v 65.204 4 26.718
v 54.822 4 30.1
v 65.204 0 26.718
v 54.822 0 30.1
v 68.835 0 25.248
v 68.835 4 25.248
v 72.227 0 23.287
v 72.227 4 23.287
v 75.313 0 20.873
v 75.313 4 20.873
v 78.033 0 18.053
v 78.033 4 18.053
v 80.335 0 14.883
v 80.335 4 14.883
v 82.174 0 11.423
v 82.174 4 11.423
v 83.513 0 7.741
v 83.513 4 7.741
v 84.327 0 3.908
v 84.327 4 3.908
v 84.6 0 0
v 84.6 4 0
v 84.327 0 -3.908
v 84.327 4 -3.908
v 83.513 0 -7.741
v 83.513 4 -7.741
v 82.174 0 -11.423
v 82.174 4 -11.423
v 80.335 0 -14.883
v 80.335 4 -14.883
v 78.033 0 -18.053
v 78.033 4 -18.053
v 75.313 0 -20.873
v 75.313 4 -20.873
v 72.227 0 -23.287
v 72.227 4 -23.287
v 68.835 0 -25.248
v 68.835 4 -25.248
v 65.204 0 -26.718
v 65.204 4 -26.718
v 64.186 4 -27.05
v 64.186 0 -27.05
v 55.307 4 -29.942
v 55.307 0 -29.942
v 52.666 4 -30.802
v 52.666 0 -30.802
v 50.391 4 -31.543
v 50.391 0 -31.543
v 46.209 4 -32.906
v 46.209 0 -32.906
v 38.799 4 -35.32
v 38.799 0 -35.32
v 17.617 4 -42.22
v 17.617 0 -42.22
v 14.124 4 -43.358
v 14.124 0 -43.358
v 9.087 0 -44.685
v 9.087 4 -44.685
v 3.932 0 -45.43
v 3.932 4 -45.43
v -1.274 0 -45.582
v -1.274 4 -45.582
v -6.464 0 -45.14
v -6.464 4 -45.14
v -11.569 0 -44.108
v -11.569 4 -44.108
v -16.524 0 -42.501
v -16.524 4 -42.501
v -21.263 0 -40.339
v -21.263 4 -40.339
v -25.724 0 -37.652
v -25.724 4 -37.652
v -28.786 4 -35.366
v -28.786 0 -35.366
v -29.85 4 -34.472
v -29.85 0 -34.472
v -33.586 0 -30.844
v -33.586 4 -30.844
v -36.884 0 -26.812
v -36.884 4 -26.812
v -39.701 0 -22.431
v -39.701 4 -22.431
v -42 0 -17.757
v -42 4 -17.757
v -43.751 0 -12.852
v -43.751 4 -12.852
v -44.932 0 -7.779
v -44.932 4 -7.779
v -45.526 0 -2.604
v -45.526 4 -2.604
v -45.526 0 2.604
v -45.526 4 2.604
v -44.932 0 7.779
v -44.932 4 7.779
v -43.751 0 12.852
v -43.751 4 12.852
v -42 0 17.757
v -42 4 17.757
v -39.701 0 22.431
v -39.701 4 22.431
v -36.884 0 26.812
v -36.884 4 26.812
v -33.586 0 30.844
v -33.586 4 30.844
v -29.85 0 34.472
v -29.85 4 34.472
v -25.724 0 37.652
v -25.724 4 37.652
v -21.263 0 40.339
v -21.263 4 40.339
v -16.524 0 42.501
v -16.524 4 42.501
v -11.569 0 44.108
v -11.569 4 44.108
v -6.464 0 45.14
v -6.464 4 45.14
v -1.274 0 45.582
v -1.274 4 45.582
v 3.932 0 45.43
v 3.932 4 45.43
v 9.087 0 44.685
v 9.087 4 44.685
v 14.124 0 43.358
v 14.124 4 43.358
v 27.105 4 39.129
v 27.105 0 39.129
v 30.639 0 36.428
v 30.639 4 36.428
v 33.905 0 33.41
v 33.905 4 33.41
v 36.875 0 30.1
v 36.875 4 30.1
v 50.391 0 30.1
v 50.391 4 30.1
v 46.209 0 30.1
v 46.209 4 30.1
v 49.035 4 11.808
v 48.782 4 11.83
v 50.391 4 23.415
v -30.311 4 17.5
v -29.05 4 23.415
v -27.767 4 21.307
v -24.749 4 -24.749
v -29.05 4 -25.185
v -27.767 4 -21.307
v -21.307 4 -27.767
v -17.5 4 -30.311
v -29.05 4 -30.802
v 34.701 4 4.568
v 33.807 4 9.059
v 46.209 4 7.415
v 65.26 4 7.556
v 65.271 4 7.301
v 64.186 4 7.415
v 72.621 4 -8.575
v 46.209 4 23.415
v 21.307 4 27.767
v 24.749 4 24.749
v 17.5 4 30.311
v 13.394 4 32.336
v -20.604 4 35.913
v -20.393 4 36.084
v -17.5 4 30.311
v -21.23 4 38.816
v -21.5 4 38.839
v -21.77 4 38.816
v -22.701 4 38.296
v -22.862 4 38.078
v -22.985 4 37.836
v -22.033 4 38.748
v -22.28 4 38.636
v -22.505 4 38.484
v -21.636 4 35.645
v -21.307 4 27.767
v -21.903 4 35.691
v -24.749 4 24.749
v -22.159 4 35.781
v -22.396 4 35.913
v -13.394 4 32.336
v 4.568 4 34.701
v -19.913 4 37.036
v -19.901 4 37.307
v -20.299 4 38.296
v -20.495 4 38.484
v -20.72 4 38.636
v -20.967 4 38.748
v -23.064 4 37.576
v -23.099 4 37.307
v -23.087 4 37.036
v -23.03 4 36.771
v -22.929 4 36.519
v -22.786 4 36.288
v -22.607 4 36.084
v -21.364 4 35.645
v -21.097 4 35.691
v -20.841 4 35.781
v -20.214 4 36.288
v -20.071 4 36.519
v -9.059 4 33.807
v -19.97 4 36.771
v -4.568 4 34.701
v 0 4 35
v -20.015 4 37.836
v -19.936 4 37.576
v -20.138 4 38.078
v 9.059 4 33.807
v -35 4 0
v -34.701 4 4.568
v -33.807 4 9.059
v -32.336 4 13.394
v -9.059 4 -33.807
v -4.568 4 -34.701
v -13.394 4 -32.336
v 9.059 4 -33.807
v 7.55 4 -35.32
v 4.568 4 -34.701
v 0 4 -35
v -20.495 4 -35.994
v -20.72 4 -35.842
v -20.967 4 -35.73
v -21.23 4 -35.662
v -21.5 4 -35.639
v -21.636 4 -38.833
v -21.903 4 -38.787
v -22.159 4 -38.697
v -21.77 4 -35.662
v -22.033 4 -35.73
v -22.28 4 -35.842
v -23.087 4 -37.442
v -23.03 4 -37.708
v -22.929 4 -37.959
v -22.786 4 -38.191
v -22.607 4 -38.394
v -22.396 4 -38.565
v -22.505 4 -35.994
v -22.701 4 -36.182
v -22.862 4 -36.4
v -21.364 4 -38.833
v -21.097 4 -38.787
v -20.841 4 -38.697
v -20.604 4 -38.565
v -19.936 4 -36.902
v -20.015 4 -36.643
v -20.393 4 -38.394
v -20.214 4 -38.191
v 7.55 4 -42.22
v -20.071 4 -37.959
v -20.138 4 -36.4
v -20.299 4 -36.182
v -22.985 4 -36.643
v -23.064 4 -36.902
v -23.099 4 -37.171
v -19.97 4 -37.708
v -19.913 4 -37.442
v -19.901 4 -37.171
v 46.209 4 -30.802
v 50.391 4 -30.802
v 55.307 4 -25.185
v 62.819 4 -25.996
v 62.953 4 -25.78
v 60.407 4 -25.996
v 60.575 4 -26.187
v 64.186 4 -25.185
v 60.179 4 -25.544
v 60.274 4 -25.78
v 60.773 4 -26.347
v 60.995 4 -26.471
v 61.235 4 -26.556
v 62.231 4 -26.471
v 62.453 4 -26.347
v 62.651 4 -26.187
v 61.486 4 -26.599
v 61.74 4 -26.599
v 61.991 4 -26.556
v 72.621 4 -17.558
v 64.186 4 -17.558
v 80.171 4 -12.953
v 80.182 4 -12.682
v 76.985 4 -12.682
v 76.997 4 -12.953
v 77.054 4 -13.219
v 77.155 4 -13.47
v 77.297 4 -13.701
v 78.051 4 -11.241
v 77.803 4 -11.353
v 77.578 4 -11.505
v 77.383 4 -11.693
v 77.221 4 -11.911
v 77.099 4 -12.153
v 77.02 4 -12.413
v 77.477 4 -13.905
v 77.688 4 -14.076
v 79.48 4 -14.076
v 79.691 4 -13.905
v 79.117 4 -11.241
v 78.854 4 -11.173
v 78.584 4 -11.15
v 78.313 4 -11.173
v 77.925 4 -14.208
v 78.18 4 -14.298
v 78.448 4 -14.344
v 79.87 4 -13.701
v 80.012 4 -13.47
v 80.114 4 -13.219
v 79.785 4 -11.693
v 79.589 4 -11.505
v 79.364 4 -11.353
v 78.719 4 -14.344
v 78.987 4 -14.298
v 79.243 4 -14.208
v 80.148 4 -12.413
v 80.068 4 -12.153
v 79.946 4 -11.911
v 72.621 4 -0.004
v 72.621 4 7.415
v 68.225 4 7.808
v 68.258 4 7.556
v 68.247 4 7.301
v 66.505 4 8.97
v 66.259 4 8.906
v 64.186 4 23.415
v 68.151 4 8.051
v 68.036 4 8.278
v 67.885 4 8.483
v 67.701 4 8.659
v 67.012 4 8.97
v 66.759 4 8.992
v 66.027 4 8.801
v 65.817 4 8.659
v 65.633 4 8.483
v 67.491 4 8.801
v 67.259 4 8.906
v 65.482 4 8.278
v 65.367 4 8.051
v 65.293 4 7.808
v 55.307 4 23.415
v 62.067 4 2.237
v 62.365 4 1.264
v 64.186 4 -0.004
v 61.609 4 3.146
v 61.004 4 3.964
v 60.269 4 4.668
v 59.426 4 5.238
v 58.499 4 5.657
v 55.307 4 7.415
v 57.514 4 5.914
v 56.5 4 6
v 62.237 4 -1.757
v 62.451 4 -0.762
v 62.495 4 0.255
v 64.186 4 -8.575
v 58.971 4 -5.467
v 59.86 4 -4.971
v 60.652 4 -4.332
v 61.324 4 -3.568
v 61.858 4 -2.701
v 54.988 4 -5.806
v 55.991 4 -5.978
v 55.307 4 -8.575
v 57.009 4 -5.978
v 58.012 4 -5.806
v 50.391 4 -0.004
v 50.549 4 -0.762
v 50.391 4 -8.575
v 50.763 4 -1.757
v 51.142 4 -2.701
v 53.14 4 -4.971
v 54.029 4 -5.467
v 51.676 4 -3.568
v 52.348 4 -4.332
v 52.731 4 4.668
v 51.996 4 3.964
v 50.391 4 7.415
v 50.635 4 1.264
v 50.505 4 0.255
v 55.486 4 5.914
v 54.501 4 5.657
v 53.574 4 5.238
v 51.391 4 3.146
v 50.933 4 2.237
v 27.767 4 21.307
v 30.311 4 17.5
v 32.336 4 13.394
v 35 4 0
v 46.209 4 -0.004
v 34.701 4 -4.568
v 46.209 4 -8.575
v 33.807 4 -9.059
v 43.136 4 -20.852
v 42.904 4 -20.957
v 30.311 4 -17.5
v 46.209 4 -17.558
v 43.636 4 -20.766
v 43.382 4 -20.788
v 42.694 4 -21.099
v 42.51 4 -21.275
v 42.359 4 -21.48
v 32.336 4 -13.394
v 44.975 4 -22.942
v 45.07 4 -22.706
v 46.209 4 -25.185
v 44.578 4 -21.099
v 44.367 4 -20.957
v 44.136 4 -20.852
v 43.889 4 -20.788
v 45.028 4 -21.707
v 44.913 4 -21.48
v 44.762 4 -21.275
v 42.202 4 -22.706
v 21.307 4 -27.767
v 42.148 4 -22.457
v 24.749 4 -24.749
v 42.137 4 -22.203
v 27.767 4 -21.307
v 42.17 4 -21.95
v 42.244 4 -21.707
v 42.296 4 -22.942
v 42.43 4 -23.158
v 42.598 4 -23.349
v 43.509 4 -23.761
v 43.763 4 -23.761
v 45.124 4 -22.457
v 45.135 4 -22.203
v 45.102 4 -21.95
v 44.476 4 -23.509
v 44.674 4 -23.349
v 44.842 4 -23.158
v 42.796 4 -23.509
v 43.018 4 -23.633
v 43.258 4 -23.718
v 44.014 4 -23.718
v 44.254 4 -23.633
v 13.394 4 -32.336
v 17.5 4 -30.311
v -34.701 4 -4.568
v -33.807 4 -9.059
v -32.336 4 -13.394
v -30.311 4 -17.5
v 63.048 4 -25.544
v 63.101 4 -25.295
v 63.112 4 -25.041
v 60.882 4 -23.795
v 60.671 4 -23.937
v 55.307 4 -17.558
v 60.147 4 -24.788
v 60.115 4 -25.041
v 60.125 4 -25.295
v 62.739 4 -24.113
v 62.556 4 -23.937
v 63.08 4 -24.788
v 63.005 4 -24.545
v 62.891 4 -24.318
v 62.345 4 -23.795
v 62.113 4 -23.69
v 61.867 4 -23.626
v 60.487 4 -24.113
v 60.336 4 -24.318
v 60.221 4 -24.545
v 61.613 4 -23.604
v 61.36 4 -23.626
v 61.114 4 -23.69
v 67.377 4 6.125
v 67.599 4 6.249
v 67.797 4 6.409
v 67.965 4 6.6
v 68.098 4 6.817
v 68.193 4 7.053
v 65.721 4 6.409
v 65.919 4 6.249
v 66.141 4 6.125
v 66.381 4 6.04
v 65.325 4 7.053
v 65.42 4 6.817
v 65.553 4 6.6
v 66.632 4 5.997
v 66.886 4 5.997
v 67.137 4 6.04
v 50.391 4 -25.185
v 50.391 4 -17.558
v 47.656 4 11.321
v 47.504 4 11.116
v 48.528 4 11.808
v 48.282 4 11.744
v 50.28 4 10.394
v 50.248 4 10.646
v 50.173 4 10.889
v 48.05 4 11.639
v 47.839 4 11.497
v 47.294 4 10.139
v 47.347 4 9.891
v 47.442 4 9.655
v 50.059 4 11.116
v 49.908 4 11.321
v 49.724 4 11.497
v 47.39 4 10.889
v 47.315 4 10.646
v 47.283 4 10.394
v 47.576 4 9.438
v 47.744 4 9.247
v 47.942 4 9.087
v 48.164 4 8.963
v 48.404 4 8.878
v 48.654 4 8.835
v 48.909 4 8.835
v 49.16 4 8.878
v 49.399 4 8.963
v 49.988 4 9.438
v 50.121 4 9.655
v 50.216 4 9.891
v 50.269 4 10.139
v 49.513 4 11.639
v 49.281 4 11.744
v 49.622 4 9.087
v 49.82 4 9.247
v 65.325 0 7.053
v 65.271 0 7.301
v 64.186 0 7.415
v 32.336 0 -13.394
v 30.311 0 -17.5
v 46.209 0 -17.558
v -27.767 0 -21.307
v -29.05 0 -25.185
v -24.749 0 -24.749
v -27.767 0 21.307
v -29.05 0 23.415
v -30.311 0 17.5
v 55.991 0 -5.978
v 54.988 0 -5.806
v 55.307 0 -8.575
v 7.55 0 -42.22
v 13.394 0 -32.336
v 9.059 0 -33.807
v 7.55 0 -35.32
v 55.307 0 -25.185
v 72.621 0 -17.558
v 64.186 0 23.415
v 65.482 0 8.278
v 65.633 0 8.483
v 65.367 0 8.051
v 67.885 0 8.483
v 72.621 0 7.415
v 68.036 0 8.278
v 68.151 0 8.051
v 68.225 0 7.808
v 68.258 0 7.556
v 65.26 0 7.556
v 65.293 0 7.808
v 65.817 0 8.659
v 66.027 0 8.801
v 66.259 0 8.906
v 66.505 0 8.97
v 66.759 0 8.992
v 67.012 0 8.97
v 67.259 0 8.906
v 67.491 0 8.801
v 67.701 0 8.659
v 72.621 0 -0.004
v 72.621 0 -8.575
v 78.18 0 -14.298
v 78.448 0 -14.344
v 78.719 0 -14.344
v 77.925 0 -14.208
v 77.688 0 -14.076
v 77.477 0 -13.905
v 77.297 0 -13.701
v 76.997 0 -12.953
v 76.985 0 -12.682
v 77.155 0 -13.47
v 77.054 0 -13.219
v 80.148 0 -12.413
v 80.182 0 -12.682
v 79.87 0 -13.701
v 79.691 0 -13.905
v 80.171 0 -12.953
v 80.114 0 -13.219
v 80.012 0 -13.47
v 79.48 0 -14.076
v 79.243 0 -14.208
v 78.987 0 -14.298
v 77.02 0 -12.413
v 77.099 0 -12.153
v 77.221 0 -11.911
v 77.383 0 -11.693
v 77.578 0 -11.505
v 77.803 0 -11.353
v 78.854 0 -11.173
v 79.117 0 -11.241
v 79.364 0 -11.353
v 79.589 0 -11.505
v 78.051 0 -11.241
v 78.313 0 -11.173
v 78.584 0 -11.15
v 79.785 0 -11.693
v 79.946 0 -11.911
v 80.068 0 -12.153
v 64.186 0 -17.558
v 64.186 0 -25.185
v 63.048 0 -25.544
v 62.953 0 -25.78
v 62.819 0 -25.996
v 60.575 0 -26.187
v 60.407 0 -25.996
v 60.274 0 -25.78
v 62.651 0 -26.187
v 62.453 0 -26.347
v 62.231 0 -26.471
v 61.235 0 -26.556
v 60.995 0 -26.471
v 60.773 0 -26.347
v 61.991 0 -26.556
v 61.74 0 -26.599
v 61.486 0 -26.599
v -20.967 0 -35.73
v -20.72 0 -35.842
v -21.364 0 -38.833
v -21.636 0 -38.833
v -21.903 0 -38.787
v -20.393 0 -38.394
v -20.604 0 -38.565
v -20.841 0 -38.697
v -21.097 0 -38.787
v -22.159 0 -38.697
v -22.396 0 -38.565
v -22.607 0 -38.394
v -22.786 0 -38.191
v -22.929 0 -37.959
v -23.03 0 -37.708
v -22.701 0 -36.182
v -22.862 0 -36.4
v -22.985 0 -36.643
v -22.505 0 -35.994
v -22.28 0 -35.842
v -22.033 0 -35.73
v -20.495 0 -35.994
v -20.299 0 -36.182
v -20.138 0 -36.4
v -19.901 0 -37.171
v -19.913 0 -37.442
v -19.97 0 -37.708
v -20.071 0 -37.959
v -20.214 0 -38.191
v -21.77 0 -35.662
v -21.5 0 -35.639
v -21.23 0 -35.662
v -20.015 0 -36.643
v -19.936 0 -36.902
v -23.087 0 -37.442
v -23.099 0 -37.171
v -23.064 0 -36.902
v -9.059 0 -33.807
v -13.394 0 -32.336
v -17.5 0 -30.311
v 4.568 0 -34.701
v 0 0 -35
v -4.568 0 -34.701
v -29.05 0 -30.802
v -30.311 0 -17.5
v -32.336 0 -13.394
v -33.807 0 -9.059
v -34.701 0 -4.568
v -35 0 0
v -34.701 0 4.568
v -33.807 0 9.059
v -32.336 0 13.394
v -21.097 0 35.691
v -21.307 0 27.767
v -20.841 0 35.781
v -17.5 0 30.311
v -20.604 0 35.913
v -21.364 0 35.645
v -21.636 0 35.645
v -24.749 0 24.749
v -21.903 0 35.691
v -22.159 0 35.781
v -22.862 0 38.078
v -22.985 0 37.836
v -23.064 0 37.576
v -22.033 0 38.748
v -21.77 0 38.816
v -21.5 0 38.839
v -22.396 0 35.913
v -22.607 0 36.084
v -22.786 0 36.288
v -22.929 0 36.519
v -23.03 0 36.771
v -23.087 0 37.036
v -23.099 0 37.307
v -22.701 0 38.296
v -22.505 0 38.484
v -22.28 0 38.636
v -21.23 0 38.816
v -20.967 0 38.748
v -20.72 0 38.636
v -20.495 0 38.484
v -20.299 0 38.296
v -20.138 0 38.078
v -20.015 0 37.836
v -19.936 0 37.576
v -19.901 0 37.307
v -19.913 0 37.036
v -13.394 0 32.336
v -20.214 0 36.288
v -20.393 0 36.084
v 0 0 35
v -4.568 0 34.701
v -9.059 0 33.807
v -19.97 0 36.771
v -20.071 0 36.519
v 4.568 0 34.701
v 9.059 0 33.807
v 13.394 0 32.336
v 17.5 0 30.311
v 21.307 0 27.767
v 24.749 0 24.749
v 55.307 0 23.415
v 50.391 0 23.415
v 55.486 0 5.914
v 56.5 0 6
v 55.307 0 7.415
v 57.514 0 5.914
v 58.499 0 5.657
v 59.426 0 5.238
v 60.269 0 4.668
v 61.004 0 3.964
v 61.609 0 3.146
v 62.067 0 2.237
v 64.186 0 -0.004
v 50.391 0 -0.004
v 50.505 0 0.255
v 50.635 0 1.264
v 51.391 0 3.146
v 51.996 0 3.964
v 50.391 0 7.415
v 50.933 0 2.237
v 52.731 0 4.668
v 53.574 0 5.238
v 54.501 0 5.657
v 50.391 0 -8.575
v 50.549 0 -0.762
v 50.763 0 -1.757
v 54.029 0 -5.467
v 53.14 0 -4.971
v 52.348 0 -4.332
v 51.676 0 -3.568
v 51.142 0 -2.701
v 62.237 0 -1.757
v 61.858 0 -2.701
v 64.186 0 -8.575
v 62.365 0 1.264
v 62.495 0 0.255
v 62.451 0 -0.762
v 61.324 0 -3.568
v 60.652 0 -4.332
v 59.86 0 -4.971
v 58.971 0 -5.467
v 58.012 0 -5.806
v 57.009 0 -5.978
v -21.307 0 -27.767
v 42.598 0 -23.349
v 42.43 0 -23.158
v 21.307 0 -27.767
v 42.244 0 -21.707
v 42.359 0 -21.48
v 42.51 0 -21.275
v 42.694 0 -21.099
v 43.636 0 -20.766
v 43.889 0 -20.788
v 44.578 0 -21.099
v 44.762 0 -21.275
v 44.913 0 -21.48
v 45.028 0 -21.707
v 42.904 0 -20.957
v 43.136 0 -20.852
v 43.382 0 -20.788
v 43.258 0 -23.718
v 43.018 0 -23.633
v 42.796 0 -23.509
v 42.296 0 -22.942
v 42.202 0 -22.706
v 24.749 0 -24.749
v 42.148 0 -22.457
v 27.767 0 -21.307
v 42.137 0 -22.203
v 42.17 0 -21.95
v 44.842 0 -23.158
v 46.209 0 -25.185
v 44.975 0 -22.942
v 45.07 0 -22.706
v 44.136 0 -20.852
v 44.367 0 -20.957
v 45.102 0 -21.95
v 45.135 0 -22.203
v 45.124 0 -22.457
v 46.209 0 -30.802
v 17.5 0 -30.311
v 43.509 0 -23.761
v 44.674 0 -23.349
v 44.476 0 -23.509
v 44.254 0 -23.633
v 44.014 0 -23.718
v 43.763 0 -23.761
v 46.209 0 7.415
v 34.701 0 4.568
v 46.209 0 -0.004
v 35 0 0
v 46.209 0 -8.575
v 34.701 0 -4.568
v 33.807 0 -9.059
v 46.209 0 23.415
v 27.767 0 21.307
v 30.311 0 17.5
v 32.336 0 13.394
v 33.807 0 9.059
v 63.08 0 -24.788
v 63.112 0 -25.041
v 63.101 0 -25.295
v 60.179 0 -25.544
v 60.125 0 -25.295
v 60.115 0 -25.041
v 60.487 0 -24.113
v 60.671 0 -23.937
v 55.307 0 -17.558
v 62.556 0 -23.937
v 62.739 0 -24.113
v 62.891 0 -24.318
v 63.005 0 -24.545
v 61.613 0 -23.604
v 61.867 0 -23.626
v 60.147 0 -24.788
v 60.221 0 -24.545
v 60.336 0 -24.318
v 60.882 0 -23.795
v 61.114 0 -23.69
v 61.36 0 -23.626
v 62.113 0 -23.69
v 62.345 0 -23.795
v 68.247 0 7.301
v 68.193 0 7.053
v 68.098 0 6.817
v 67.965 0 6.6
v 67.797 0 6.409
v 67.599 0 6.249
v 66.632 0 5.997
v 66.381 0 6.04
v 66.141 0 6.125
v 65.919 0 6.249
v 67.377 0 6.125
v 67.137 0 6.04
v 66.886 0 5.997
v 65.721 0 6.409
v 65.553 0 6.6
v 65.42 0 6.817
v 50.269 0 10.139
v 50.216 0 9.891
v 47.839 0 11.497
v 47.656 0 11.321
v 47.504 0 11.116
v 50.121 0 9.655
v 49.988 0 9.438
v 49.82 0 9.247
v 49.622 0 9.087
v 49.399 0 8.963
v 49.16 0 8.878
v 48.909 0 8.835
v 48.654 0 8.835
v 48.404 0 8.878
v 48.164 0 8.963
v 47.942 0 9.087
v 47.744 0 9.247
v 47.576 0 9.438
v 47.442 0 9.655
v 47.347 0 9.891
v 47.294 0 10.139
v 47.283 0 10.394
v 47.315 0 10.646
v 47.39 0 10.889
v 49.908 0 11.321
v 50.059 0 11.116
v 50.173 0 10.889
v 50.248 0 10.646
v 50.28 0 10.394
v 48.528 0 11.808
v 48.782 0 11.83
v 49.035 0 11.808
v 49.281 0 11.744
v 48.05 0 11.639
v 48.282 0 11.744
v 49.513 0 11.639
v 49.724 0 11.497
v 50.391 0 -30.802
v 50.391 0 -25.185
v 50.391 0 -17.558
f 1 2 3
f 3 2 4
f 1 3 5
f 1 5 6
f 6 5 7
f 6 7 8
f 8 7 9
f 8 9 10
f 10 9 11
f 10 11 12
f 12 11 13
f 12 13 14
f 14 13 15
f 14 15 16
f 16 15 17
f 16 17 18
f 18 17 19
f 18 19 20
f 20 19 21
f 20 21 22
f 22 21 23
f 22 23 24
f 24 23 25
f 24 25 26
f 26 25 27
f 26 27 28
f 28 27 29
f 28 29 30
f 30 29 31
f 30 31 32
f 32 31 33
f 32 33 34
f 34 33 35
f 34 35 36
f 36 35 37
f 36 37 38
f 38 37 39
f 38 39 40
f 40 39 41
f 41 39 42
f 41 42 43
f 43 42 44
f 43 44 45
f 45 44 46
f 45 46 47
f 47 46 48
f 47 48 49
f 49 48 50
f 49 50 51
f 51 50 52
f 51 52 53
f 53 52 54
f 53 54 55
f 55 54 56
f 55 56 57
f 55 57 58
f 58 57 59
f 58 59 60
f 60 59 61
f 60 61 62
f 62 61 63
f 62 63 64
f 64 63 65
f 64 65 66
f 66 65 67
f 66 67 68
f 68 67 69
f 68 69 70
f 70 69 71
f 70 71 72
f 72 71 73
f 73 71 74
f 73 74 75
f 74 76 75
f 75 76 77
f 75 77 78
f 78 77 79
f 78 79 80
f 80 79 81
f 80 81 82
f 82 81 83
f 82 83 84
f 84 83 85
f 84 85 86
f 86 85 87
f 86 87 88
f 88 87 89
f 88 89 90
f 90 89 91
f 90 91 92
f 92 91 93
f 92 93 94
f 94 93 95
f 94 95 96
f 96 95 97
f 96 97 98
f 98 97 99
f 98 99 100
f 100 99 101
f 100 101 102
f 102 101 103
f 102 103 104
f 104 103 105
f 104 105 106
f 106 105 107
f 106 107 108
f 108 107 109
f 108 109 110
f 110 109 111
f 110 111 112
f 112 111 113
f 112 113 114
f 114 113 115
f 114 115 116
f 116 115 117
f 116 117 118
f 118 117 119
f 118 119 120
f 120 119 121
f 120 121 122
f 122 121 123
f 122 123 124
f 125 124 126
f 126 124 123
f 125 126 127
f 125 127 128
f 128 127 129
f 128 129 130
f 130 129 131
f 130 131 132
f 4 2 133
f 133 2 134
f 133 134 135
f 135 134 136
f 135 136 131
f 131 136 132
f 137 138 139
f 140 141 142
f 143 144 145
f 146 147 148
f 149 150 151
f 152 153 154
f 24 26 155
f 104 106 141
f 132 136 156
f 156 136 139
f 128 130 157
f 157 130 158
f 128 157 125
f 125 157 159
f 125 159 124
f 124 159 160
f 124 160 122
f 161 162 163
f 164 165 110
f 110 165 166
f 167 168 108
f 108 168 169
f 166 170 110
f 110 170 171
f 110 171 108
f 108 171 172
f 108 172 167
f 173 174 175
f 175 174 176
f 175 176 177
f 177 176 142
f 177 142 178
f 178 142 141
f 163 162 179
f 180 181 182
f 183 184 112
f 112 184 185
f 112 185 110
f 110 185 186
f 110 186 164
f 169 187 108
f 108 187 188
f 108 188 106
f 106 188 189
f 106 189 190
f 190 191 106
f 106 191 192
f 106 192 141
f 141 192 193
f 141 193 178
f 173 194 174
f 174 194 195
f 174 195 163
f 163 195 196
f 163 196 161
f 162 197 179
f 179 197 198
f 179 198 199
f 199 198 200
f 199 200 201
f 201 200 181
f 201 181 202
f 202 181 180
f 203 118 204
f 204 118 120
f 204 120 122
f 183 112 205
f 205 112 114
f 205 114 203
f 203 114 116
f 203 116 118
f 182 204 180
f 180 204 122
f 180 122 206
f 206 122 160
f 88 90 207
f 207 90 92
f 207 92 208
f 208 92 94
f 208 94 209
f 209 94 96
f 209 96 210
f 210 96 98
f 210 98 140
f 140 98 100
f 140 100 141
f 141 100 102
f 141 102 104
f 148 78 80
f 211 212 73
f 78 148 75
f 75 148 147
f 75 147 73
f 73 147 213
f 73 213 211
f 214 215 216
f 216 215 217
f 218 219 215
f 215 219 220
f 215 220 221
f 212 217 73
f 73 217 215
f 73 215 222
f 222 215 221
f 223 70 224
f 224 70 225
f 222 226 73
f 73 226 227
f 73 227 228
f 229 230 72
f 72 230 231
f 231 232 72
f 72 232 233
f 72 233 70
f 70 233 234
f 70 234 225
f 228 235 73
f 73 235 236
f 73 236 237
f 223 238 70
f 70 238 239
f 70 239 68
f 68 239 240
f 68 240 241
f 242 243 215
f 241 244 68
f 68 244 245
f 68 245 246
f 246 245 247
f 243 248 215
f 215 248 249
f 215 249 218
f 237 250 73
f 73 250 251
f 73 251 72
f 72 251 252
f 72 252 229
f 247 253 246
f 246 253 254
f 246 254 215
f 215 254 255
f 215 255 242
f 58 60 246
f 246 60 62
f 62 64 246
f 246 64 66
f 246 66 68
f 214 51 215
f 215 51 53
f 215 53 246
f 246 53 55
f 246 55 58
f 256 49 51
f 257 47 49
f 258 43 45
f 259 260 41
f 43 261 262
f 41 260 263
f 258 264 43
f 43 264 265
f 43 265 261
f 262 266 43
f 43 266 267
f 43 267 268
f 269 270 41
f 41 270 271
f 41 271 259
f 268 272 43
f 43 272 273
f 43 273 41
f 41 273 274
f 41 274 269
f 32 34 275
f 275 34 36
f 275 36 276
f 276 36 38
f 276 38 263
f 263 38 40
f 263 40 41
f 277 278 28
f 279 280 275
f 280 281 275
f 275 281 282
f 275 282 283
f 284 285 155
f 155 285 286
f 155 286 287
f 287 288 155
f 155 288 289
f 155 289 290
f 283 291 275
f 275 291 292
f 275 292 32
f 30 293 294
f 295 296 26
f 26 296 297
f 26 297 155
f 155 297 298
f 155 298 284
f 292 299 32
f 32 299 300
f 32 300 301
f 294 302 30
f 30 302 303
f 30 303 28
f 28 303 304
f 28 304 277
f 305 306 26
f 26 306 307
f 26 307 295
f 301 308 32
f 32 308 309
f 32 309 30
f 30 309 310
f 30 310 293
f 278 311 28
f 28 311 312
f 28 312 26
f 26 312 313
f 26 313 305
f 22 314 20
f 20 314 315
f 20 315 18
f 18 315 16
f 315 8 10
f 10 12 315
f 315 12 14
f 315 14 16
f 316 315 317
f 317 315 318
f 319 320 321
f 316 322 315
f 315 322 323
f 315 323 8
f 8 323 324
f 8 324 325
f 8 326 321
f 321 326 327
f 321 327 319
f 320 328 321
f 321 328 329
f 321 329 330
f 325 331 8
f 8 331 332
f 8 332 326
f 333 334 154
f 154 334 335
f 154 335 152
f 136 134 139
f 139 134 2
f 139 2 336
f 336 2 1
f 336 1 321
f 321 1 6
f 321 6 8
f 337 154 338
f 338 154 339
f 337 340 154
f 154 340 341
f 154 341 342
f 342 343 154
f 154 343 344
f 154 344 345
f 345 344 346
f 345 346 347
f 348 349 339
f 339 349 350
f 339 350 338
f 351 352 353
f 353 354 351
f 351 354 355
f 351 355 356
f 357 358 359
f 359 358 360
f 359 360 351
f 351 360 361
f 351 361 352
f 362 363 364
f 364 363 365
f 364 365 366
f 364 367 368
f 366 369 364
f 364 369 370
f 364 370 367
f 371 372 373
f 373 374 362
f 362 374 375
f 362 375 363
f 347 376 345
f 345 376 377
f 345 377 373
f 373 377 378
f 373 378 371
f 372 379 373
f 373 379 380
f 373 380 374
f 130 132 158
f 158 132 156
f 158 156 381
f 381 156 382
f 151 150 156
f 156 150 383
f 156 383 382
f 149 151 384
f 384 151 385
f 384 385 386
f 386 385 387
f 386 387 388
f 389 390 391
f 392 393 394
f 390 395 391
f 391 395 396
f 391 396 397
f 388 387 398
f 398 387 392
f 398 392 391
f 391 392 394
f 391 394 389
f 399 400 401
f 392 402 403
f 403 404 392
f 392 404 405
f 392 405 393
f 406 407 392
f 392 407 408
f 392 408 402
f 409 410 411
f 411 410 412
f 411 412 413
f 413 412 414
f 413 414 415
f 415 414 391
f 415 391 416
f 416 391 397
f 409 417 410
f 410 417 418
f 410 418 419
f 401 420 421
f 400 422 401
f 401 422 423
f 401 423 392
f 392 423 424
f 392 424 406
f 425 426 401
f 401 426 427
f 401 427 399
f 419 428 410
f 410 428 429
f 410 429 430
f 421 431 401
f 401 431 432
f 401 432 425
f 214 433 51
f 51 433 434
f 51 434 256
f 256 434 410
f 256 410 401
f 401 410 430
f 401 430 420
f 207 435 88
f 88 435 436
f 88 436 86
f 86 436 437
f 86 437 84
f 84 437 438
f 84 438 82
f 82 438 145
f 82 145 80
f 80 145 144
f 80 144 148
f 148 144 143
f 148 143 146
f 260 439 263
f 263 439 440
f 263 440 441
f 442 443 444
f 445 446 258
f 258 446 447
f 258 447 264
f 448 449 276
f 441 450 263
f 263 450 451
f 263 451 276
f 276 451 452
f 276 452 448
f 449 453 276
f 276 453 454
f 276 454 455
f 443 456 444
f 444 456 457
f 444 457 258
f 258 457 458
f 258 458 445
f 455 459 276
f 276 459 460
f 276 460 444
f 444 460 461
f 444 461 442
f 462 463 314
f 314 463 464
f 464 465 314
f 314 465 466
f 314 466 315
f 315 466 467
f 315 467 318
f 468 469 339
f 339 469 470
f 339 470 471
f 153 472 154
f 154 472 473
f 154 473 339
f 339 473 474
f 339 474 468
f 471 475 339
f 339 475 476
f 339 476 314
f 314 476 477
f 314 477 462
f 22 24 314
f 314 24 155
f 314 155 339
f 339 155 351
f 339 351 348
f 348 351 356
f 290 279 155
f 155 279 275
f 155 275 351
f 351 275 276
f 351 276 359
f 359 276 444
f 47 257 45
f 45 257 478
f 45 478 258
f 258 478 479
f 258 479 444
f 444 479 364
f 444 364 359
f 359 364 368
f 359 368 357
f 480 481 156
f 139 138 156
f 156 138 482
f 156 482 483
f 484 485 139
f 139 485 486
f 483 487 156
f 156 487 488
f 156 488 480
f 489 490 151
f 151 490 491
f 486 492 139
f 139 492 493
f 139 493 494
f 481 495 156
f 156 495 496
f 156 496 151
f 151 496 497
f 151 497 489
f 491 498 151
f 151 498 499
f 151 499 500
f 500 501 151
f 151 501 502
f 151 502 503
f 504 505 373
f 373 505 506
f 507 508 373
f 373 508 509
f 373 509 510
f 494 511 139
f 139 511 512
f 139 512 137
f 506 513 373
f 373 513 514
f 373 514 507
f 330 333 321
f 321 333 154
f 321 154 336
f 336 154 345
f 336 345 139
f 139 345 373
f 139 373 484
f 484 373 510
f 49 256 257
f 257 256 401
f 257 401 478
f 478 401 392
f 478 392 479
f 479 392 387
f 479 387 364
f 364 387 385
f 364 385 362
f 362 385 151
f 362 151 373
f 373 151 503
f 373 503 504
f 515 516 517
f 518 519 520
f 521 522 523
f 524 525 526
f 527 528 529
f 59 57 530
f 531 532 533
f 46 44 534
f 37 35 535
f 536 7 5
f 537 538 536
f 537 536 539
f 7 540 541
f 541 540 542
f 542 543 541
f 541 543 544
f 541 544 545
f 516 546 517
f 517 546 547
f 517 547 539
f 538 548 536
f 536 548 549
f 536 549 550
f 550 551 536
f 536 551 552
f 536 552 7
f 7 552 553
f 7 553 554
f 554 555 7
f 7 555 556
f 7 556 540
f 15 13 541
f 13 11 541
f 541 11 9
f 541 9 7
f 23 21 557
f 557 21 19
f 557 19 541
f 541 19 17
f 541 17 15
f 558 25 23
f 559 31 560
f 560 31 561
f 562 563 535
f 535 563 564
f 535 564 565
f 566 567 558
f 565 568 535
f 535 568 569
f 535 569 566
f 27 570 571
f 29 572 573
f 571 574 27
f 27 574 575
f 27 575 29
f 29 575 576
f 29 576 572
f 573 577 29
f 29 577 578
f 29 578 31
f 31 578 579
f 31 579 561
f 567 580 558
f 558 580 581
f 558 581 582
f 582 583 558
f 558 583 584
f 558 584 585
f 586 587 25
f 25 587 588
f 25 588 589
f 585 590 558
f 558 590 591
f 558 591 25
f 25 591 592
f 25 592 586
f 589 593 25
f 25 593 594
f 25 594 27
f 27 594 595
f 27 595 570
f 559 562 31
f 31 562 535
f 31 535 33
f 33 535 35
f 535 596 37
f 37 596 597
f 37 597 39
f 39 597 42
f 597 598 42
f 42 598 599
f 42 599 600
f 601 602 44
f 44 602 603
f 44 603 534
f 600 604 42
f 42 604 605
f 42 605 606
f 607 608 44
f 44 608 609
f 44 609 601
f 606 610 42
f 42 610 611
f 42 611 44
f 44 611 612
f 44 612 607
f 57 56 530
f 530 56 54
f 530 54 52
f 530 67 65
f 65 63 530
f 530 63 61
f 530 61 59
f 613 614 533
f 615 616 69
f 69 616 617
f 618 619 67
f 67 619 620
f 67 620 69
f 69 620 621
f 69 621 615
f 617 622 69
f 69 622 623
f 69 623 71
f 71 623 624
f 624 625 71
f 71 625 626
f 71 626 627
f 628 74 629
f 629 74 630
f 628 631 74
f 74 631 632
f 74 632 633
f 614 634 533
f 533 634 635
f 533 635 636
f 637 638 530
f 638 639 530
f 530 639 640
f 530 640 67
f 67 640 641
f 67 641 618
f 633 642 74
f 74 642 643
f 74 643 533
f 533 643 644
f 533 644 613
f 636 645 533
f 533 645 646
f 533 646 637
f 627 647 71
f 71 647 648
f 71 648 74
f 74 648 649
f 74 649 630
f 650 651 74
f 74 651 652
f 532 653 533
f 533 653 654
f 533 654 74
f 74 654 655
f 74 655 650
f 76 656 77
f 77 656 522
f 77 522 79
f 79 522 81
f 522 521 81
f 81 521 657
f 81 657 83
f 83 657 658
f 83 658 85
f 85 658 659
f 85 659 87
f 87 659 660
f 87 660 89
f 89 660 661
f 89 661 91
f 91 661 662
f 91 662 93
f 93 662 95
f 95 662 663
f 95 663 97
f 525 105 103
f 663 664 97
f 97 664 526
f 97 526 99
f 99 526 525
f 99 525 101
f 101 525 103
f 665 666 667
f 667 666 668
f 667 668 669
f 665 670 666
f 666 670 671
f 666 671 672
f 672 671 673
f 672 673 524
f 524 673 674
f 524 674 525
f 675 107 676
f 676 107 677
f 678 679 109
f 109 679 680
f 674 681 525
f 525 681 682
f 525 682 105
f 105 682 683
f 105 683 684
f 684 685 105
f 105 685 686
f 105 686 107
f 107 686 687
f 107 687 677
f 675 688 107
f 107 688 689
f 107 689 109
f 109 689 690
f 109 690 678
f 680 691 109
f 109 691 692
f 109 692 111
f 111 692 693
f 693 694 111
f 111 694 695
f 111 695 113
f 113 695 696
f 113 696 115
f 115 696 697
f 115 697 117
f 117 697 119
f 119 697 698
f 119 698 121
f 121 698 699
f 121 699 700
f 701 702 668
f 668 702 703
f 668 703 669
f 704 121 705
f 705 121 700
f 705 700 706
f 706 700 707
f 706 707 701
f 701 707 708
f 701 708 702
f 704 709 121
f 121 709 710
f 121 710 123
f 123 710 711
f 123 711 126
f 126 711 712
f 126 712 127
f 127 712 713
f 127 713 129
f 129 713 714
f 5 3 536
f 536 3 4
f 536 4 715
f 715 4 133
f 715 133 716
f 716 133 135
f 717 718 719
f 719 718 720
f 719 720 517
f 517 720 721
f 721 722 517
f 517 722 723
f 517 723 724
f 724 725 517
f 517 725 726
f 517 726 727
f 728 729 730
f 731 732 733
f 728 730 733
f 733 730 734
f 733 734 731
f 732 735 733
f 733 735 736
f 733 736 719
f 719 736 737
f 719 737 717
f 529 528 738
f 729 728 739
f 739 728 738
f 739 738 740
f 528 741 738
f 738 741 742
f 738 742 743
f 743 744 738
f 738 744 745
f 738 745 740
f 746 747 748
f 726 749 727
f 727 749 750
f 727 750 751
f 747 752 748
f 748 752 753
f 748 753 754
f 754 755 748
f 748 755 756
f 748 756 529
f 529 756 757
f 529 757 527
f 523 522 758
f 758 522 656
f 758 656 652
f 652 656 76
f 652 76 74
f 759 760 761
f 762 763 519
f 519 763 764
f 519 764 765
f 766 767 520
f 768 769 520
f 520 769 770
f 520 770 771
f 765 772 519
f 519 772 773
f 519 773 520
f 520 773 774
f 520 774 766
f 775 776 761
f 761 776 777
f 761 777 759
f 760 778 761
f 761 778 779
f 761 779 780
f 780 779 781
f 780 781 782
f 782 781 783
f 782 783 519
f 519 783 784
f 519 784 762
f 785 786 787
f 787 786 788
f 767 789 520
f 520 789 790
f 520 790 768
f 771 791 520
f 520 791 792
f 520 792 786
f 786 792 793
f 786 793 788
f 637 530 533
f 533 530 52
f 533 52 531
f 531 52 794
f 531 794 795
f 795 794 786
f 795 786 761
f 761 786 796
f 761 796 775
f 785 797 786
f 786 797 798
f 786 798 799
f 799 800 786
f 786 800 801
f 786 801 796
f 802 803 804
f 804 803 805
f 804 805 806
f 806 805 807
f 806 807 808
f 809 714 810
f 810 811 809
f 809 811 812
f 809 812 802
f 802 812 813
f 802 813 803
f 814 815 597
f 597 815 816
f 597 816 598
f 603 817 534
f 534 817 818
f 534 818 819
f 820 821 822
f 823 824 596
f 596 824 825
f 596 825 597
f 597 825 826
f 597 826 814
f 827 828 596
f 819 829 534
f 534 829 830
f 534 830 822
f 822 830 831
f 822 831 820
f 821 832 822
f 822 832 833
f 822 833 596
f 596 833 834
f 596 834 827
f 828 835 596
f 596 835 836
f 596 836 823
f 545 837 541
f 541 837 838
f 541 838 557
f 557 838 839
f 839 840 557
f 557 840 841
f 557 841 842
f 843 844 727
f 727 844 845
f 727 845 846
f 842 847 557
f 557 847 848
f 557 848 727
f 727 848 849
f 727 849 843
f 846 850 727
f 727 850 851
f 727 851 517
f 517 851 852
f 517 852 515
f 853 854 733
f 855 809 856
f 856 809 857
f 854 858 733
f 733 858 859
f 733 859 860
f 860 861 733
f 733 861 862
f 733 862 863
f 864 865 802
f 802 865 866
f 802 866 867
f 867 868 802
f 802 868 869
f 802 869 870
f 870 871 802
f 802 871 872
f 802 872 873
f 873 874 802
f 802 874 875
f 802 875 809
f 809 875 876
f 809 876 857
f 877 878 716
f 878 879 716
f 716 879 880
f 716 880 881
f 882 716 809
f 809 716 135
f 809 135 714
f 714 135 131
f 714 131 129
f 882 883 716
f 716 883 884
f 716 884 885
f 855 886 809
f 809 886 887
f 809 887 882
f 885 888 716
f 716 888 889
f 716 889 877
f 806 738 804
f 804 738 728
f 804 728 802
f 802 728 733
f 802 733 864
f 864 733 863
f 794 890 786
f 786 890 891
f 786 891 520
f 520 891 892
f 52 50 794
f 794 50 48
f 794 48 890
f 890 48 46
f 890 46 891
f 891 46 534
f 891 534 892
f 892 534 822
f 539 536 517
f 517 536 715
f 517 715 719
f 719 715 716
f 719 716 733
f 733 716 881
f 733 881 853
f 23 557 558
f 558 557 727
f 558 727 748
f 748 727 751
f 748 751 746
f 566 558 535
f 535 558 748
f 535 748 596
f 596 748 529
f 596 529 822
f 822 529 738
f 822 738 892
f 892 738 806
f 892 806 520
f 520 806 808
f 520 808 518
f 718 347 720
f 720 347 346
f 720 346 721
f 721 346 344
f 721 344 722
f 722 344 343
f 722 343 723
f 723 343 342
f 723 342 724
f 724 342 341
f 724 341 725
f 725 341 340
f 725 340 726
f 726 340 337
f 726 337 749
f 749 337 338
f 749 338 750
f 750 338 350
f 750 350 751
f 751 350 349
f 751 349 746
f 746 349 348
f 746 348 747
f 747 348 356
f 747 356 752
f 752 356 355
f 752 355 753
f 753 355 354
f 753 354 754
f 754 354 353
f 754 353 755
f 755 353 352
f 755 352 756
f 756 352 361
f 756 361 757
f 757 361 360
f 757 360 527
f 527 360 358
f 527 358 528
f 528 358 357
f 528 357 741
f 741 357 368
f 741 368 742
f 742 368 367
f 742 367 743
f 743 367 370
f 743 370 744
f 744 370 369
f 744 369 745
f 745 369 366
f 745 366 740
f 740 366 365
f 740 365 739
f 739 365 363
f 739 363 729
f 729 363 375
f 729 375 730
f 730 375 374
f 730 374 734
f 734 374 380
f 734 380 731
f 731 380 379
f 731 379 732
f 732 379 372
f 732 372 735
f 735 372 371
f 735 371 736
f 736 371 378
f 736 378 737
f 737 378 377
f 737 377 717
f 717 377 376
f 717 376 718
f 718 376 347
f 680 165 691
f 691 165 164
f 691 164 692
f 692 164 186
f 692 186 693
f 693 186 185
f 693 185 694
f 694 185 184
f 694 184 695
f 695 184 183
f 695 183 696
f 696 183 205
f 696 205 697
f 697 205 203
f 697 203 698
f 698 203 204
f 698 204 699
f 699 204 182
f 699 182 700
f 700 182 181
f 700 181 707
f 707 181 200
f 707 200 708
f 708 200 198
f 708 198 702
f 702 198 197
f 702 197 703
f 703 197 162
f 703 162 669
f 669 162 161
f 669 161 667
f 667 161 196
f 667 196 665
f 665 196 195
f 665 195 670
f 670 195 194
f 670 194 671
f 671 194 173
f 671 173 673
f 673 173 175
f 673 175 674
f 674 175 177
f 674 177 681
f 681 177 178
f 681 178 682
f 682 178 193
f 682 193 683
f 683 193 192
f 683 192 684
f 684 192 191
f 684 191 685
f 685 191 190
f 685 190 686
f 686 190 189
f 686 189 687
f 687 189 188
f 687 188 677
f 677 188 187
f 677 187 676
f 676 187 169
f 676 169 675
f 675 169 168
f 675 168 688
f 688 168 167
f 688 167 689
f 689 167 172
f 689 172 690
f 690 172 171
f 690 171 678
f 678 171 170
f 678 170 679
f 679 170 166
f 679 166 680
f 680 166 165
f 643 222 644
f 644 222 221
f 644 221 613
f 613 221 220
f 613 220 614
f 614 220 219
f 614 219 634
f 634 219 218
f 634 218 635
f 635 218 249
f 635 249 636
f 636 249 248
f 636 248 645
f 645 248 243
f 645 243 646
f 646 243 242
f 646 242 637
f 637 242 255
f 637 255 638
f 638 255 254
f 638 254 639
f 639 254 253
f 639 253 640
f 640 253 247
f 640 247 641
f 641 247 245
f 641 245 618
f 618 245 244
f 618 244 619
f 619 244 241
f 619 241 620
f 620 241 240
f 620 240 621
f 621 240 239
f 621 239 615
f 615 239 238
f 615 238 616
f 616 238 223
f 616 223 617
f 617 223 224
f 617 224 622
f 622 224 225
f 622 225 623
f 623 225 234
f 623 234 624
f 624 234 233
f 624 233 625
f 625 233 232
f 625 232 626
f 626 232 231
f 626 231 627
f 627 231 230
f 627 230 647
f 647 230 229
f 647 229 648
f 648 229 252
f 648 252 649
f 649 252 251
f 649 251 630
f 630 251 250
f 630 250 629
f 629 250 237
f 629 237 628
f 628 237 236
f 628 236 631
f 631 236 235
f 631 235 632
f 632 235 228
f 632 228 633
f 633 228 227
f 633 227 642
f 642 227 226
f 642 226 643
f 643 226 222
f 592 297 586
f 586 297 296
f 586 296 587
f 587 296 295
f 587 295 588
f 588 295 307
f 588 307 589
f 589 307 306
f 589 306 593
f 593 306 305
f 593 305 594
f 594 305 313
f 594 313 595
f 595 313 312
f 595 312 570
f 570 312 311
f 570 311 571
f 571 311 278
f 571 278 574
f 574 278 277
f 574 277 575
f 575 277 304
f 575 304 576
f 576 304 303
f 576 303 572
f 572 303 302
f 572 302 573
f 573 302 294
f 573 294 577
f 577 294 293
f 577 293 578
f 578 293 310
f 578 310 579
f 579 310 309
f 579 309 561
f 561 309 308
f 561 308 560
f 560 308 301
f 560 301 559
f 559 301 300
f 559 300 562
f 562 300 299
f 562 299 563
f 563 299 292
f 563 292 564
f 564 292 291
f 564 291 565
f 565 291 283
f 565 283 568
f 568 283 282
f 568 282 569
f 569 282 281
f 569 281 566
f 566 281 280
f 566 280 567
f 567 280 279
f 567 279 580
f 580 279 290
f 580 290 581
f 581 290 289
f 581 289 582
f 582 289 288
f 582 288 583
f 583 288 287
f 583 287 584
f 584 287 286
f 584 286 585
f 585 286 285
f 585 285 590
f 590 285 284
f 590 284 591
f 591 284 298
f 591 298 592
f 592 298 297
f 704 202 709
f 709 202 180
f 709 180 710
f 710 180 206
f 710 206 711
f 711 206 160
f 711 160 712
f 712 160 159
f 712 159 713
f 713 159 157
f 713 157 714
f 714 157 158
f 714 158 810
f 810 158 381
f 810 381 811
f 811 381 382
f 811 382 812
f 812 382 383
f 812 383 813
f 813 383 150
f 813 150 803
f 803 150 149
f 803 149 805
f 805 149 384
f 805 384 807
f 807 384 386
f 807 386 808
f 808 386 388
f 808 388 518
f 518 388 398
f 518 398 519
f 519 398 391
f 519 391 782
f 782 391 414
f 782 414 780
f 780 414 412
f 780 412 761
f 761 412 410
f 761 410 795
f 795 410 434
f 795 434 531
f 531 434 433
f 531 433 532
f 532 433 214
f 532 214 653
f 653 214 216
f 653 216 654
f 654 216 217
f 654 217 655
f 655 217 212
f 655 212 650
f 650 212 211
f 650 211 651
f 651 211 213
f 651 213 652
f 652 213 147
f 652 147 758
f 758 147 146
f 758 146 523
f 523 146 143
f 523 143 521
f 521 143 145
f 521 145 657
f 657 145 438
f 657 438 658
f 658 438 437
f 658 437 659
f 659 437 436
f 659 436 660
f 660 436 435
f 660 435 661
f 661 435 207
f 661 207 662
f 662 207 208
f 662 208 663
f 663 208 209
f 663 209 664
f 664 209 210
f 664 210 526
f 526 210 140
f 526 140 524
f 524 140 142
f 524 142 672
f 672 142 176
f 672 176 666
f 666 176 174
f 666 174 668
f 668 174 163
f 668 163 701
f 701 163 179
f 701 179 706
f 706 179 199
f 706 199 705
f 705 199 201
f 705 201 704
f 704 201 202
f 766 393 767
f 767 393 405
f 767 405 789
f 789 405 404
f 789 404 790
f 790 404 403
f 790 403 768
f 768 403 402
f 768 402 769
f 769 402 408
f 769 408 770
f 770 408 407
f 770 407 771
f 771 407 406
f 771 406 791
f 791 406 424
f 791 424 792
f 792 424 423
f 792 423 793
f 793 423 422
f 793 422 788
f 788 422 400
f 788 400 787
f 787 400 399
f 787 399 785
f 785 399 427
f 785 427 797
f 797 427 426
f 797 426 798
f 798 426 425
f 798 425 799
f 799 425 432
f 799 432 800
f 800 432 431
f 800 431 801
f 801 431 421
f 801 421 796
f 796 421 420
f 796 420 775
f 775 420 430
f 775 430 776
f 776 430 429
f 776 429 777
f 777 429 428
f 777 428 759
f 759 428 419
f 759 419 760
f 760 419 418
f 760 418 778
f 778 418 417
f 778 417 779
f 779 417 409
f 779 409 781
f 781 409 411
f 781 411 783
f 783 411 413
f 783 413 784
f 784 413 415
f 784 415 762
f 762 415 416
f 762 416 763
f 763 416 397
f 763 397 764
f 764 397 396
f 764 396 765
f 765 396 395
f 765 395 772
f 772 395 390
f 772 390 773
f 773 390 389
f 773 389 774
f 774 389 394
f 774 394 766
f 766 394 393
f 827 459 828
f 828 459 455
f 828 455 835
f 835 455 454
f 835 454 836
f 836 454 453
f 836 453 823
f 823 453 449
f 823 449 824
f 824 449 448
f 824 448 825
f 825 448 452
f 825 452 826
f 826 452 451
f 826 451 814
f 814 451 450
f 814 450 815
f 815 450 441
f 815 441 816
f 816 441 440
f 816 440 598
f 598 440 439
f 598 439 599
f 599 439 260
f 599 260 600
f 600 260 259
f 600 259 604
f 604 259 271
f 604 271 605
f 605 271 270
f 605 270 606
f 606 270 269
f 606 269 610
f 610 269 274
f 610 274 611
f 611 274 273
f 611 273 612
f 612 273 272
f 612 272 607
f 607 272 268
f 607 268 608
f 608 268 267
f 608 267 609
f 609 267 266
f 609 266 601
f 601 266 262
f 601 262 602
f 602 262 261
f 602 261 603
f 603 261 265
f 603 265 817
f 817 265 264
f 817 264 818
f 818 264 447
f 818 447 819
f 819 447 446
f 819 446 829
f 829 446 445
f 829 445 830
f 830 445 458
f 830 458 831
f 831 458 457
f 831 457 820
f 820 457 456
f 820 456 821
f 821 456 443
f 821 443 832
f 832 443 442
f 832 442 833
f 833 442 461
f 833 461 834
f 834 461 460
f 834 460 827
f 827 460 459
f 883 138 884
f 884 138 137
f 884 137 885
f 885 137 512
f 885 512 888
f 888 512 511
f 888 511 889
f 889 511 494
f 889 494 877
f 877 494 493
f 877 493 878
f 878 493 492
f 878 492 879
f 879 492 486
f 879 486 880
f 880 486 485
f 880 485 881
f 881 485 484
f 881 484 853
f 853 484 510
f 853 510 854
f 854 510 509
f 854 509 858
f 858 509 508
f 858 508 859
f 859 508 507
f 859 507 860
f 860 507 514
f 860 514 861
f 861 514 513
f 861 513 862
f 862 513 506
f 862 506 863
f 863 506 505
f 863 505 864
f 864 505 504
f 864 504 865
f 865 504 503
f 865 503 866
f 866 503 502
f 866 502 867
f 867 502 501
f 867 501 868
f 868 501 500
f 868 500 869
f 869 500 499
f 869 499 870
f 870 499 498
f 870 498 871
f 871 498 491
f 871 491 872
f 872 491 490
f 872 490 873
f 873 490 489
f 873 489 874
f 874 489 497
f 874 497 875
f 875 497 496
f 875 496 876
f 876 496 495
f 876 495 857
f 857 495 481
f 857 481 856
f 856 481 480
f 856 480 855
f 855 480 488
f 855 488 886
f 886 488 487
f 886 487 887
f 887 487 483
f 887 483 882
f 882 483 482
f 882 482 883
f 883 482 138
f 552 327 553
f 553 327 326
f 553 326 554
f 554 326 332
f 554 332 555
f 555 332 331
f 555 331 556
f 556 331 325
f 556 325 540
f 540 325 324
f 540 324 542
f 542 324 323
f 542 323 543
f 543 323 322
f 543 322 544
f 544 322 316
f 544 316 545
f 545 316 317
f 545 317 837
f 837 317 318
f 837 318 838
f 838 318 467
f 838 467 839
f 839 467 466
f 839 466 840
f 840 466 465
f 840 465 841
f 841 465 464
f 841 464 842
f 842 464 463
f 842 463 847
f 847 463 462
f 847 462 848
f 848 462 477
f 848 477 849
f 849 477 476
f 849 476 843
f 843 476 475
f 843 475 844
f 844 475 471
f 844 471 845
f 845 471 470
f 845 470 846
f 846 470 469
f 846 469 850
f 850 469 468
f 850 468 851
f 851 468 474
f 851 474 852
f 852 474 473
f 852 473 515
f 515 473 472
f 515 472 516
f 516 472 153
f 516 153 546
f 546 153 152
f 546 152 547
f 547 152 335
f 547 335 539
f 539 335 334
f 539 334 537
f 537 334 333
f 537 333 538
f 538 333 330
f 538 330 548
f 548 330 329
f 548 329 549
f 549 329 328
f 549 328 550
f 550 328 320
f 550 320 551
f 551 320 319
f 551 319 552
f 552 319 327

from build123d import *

# Parameters (mm, degrees)
BOSS_EXTRUDE1_DEPTH = 4
SKETCH2_R           = 4.5
SKETCH2_R_2         = 6
CUT_EXTRUDE1_DEPTH  = 10
SKETCH3_R           = 1.6
CUT_EXTRUDE2_DEPTH  = 10
SKETCH4_R           = 35
CUT_EXTRUDE3_DEPTH  = 10
SKETCH5_R           = 1.5
CUT_EXTRUDE4_DEPTH  = 10


with BuildPart() as part:
    # Sketch1 → Boss-Extrude1 (new body)
    with BuildSketch(Plane(origin=(0, 0, 0), x_dir=(1, 0, 0), z_dir=(0, 1, 0))):
        with BuildLine():
            ThreePointArc((14.123893805, 43.357532492), (-45.6, 0), (14.123893805, -43.357532492))
            Line((14.123893805, -43.357532492), (27.105327803, -39.128777194))
            ThreePointArc((27.105327803, -39.128777194), (32.307019566, -34.957352399), (36.874788135, -30.1))
            Line((36.874788135, -30.1), (54.821870135, -30.1))
            Line((54.821870135, -30.1), (65.203539823, -26.718128575))
            ThreePointArc((65.203539823, -26.718128575), (84.6, 0), (65.203539823, 26.718128575))
            Line((65.203539823, 26.718128575), (14.123893805, 43.357532492))
        make_face()
    extrude(amount=BOSS_EXTRUDE1_DEPTH)

    # Sketch2 → Cut-Extrude1 (cut)
    with BuildSketch(Plane(origin=(0, 4, 0), x_dir=(1, 0, 0), z_dir=(0, 1, 0))):
        with Locations(Location((0, 0, 0), (0, 0, 270))):
            Circle(SKETCH2_R)
        with Locations(Location((56.5, 0, 0), (0, 0, 270))):
            Circle(SKETCH2_R_2)
    extrude(amount=-CUT_EXTRUDE1_DEPTH, mode=Mode.SUBTRACT)

    # Sketch3 → Cut-Extrude2 (cut)
    with BuildSketch(Plane(origin=(0, 4, 0), x_dir=(1, 0, 0), z_dir=(0, 1, 0))):
        with Locations(Location((78.583647797, 12.75, 0), (0, 0, 270))):
            Circle(SKETCH3_R)
        with Locations(Location((-21.5, 37.239092363, 0), (0, 0, 270))):
            Circle(SKETCH3_R)
        with Locations(Location((-21.5, -37.239092363, 0), (0, 0, 270))):
            Circle(SKETCH3_R)
    extrude(amount=-CUT_EXTRUDE2_DEPTH, mode=Mode.SUBTRACT)

    # Sketch4 → Cut-Extrude3 (cut)
    with BuildSketch(Plane(origin=(0, 4, 0), x_dir=(1, 0, 0), z_dir=(0, 1, 0))):
        with Locations(Location((0, 0, 0), (0, 0, 270))):
            Circle(SKETCH4_R)
    extrude(amount=-CUT_EXTRUDE3_DEPTH, mode=Mode.SUBTRACT)

    # Sketch5 → Cut-Extrude4 (cut)
    with BuildSketch(Plane(origin=(0, 4, 0), x_dir=(1, 0, 0), z_dir=(0, 1, 0))):
        with Locations(Location((48.781600067, -10.329892746, 0), (0, 0, 270))):
            Circle(SKETCH5_R)
        with Locations(Location((66.758977017, -7.491950177, 0), (0, 0, 270))):
            Circle(SKETCH5_R)
        with Locations(Location((61.613256974, 25.104392643, 0), (0, 0, 270))):
            Circle(SKETCH5_R)
        with Locations(Location((43.635880025, 22.266450075, 0), (0, 0, 270))):
            Circle(SKETCH5_R)
    extrude(amount=-CUT_EXTRUDE4_DEPTH, mode=Mode.SUBTRACT)


solid = part.part
